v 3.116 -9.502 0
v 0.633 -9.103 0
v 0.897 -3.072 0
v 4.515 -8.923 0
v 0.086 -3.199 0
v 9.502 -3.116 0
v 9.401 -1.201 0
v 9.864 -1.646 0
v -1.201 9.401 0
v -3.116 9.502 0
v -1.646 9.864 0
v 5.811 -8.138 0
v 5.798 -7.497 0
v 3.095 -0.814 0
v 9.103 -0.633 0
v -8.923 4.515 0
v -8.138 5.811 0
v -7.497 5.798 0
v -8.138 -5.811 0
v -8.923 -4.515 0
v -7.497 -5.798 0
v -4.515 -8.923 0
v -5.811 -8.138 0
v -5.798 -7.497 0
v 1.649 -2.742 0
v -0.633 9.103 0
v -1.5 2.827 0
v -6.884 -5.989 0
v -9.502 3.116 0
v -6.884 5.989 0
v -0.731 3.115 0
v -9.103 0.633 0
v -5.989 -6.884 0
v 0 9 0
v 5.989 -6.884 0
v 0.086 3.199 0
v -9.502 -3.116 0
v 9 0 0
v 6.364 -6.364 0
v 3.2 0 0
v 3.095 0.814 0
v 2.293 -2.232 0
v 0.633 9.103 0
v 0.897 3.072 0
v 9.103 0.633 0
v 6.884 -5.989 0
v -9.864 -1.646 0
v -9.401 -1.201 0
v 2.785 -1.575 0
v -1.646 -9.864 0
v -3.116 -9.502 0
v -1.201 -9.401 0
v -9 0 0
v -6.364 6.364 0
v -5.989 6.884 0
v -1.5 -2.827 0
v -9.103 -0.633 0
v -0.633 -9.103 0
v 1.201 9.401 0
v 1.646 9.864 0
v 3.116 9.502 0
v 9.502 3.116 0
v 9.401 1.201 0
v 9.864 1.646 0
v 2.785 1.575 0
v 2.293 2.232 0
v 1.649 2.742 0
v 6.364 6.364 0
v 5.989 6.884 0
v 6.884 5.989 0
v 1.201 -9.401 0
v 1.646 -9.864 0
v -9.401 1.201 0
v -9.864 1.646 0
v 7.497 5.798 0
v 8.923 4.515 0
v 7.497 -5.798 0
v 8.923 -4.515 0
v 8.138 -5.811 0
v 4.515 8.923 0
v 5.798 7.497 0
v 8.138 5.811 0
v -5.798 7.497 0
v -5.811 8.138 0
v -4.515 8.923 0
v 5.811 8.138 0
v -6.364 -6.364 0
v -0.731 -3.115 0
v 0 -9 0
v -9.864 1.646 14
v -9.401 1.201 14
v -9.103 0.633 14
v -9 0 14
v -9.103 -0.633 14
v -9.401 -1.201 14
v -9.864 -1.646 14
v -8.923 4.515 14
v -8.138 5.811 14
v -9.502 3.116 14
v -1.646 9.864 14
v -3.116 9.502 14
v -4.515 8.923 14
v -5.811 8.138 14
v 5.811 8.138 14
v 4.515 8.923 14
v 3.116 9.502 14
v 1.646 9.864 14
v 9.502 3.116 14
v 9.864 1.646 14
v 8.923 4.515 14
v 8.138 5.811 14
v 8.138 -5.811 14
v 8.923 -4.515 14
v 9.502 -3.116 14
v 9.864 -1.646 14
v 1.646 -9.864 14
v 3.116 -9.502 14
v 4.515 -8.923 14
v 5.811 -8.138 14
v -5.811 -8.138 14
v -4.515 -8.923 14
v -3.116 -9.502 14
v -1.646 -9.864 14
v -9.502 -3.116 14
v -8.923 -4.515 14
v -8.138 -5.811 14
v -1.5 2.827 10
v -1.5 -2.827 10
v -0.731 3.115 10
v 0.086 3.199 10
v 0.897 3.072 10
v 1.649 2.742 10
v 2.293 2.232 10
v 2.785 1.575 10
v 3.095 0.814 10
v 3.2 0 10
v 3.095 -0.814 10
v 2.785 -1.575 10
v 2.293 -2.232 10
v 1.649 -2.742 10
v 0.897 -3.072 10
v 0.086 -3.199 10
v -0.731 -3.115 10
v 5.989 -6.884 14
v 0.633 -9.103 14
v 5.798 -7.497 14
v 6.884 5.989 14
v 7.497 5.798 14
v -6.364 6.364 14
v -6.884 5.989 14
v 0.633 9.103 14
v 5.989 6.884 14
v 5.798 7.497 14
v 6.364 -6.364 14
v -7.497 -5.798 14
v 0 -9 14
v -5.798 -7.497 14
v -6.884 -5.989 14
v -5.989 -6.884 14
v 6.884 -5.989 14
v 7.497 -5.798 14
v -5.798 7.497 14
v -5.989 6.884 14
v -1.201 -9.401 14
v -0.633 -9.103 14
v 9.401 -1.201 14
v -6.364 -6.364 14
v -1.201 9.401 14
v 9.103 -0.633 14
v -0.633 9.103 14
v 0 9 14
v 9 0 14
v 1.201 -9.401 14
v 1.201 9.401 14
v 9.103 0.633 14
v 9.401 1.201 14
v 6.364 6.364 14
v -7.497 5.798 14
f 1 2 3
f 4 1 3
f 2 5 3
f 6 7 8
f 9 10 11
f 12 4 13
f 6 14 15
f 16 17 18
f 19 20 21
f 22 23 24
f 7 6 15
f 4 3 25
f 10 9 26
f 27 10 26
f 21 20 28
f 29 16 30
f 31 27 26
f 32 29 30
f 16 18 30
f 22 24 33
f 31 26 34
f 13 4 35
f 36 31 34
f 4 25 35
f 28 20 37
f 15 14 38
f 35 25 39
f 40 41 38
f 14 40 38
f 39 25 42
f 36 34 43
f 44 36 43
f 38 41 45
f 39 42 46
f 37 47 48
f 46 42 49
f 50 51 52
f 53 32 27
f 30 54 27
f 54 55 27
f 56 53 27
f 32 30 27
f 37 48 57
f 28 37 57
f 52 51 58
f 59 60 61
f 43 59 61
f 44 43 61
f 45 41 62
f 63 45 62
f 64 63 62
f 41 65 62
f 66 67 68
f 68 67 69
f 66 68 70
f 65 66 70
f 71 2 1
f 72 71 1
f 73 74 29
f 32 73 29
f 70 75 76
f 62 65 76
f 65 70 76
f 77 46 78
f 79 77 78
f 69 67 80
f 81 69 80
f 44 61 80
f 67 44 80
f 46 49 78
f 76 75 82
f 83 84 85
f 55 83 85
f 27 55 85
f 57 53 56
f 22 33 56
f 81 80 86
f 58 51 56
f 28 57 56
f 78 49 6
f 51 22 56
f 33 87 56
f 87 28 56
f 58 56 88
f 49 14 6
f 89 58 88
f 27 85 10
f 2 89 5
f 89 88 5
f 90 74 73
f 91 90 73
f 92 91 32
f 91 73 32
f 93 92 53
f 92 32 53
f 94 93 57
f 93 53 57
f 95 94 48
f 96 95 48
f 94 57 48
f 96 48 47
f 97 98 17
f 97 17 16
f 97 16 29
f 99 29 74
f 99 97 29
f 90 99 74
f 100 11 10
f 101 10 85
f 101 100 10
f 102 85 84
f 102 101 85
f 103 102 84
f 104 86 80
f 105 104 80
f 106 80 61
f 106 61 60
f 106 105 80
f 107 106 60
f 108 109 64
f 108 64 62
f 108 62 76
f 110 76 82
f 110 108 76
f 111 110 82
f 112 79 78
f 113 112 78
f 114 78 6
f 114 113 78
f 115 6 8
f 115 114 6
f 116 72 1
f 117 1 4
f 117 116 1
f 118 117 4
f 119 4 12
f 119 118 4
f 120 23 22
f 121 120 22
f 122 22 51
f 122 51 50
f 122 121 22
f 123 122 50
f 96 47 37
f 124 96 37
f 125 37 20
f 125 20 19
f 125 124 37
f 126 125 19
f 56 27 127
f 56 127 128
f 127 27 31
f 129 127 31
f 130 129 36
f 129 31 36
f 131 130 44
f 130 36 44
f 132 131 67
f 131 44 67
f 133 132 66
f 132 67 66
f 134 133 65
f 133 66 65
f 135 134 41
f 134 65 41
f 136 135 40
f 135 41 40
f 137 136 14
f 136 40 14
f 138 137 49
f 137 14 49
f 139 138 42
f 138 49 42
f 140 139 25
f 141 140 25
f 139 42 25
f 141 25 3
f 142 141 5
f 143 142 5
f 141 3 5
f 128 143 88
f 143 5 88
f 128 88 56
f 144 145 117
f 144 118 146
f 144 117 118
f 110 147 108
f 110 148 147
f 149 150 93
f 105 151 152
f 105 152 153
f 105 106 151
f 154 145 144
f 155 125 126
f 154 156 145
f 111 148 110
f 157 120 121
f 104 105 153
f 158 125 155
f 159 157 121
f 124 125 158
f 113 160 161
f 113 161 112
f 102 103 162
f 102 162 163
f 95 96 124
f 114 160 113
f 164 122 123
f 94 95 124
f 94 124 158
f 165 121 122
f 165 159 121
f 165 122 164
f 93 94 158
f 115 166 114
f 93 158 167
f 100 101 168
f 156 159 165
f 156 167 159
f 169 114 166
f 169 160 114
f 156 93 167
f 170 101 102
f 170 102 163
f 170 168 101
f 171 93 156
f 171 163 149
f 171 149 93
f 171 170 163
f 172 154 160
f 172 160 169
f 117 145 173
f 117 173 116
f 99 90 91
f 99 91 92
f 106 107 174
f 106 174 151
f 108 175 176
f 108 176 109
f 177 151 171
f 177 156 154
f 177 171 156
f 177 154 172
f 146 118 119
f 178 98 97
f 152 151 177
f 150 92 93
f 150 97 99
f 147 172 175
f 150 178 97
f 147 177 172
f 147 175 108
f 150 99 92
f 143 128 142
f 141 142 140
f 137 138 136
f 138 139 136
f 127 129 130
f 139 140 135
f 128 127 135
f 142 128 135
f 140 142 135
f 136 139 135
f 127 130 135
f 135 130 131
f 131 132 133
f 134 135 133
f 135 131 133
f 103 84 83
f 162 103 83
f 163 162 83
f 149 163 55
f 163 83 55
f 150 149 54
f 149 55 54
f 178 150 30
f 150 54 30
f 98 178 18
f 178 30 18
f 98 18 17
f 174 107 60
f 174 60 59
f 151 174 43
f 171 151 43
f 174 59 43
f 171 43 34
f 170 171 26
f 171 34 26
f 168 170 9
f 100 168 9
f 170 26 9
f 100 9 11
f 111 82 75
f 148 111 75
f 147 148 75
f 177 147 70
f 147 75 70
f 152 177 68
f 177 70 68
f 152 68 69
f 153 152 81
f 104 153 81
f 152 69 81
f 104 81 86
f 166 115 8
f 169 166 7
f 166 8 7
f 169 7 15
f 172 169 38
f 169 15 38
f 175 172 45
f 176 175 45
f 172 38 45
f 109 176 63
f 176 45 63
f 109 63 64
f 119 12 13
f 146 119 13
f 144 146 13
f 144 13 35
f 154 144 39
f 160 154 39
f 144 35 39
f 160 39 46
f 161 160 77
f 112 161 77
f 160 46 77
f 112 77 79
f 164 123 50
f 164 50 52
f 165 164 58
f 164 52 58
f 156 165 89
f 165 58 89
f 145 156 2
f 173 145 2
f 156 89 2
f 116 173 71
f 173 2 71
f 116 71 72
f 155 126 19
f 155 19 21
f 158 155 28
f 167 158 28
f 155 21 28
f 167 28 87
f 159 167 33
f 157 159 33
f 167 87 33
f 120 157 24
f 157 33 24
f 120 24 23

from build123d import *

# Parameters (mm, degrees)
CYLINDER_R         = 10
CYLINDER_DEPTH     = 14
POCKET_DEPTH       = 10
SKETCH001_R        = 2
POCKET001_DEPTH    = 14
POLARPATTERN_COUNT = 8


with BuildPart() as part:
    # Cylinder → Cylinder (new body)
    with BuildSketch(Plane.XY):
        Circle(CYLINDER_R)
    extrude(amount=CYLINDER_DEPTH)

    # Sketch → Pocket (cut)
    with BuildSketch(Plane(origin=(0, 0, 0), x_dir=(1, 0, 0), z_dir=(0, 0, -1))):
        with BuildLine():
            ThreePointArc((-1.5, -2.826659), (3.2, 0), (-1.5, 2.826659))
            Line((-1.5, -2.826659), (-1.5, 2.826659))
        make_face()
    extrude(amount=-POCKET_DEPTH, mode=Mode.SUBTRACT)

    # Sketch001 → Pocket001 (cut)
    with BuildSketch(Plane(origin=(0, 0, 0), x_dir=(1, 0, 0), z_dir=(0, 0, -1))):
        with Locations((-11, 0)):
            Circle(SKETCH001_R)
    pocket001 = extrude(amount=-POCKET001_DEPTH, mode=Mode.SUBTRACT)

    # PolarPattern: Pocket001 ×8 about axis
    polarpattern_axis = Axis((0, 0, 0), (0, 0, -1))
    for i in range(1, POLARPATTERN_COUNT):
        add(pocket001.rotate(polarpattern_axis, i * 360 / POLARPATTERN_COUNT), mode=Mode.SUBTRACT)


solid = part.part
